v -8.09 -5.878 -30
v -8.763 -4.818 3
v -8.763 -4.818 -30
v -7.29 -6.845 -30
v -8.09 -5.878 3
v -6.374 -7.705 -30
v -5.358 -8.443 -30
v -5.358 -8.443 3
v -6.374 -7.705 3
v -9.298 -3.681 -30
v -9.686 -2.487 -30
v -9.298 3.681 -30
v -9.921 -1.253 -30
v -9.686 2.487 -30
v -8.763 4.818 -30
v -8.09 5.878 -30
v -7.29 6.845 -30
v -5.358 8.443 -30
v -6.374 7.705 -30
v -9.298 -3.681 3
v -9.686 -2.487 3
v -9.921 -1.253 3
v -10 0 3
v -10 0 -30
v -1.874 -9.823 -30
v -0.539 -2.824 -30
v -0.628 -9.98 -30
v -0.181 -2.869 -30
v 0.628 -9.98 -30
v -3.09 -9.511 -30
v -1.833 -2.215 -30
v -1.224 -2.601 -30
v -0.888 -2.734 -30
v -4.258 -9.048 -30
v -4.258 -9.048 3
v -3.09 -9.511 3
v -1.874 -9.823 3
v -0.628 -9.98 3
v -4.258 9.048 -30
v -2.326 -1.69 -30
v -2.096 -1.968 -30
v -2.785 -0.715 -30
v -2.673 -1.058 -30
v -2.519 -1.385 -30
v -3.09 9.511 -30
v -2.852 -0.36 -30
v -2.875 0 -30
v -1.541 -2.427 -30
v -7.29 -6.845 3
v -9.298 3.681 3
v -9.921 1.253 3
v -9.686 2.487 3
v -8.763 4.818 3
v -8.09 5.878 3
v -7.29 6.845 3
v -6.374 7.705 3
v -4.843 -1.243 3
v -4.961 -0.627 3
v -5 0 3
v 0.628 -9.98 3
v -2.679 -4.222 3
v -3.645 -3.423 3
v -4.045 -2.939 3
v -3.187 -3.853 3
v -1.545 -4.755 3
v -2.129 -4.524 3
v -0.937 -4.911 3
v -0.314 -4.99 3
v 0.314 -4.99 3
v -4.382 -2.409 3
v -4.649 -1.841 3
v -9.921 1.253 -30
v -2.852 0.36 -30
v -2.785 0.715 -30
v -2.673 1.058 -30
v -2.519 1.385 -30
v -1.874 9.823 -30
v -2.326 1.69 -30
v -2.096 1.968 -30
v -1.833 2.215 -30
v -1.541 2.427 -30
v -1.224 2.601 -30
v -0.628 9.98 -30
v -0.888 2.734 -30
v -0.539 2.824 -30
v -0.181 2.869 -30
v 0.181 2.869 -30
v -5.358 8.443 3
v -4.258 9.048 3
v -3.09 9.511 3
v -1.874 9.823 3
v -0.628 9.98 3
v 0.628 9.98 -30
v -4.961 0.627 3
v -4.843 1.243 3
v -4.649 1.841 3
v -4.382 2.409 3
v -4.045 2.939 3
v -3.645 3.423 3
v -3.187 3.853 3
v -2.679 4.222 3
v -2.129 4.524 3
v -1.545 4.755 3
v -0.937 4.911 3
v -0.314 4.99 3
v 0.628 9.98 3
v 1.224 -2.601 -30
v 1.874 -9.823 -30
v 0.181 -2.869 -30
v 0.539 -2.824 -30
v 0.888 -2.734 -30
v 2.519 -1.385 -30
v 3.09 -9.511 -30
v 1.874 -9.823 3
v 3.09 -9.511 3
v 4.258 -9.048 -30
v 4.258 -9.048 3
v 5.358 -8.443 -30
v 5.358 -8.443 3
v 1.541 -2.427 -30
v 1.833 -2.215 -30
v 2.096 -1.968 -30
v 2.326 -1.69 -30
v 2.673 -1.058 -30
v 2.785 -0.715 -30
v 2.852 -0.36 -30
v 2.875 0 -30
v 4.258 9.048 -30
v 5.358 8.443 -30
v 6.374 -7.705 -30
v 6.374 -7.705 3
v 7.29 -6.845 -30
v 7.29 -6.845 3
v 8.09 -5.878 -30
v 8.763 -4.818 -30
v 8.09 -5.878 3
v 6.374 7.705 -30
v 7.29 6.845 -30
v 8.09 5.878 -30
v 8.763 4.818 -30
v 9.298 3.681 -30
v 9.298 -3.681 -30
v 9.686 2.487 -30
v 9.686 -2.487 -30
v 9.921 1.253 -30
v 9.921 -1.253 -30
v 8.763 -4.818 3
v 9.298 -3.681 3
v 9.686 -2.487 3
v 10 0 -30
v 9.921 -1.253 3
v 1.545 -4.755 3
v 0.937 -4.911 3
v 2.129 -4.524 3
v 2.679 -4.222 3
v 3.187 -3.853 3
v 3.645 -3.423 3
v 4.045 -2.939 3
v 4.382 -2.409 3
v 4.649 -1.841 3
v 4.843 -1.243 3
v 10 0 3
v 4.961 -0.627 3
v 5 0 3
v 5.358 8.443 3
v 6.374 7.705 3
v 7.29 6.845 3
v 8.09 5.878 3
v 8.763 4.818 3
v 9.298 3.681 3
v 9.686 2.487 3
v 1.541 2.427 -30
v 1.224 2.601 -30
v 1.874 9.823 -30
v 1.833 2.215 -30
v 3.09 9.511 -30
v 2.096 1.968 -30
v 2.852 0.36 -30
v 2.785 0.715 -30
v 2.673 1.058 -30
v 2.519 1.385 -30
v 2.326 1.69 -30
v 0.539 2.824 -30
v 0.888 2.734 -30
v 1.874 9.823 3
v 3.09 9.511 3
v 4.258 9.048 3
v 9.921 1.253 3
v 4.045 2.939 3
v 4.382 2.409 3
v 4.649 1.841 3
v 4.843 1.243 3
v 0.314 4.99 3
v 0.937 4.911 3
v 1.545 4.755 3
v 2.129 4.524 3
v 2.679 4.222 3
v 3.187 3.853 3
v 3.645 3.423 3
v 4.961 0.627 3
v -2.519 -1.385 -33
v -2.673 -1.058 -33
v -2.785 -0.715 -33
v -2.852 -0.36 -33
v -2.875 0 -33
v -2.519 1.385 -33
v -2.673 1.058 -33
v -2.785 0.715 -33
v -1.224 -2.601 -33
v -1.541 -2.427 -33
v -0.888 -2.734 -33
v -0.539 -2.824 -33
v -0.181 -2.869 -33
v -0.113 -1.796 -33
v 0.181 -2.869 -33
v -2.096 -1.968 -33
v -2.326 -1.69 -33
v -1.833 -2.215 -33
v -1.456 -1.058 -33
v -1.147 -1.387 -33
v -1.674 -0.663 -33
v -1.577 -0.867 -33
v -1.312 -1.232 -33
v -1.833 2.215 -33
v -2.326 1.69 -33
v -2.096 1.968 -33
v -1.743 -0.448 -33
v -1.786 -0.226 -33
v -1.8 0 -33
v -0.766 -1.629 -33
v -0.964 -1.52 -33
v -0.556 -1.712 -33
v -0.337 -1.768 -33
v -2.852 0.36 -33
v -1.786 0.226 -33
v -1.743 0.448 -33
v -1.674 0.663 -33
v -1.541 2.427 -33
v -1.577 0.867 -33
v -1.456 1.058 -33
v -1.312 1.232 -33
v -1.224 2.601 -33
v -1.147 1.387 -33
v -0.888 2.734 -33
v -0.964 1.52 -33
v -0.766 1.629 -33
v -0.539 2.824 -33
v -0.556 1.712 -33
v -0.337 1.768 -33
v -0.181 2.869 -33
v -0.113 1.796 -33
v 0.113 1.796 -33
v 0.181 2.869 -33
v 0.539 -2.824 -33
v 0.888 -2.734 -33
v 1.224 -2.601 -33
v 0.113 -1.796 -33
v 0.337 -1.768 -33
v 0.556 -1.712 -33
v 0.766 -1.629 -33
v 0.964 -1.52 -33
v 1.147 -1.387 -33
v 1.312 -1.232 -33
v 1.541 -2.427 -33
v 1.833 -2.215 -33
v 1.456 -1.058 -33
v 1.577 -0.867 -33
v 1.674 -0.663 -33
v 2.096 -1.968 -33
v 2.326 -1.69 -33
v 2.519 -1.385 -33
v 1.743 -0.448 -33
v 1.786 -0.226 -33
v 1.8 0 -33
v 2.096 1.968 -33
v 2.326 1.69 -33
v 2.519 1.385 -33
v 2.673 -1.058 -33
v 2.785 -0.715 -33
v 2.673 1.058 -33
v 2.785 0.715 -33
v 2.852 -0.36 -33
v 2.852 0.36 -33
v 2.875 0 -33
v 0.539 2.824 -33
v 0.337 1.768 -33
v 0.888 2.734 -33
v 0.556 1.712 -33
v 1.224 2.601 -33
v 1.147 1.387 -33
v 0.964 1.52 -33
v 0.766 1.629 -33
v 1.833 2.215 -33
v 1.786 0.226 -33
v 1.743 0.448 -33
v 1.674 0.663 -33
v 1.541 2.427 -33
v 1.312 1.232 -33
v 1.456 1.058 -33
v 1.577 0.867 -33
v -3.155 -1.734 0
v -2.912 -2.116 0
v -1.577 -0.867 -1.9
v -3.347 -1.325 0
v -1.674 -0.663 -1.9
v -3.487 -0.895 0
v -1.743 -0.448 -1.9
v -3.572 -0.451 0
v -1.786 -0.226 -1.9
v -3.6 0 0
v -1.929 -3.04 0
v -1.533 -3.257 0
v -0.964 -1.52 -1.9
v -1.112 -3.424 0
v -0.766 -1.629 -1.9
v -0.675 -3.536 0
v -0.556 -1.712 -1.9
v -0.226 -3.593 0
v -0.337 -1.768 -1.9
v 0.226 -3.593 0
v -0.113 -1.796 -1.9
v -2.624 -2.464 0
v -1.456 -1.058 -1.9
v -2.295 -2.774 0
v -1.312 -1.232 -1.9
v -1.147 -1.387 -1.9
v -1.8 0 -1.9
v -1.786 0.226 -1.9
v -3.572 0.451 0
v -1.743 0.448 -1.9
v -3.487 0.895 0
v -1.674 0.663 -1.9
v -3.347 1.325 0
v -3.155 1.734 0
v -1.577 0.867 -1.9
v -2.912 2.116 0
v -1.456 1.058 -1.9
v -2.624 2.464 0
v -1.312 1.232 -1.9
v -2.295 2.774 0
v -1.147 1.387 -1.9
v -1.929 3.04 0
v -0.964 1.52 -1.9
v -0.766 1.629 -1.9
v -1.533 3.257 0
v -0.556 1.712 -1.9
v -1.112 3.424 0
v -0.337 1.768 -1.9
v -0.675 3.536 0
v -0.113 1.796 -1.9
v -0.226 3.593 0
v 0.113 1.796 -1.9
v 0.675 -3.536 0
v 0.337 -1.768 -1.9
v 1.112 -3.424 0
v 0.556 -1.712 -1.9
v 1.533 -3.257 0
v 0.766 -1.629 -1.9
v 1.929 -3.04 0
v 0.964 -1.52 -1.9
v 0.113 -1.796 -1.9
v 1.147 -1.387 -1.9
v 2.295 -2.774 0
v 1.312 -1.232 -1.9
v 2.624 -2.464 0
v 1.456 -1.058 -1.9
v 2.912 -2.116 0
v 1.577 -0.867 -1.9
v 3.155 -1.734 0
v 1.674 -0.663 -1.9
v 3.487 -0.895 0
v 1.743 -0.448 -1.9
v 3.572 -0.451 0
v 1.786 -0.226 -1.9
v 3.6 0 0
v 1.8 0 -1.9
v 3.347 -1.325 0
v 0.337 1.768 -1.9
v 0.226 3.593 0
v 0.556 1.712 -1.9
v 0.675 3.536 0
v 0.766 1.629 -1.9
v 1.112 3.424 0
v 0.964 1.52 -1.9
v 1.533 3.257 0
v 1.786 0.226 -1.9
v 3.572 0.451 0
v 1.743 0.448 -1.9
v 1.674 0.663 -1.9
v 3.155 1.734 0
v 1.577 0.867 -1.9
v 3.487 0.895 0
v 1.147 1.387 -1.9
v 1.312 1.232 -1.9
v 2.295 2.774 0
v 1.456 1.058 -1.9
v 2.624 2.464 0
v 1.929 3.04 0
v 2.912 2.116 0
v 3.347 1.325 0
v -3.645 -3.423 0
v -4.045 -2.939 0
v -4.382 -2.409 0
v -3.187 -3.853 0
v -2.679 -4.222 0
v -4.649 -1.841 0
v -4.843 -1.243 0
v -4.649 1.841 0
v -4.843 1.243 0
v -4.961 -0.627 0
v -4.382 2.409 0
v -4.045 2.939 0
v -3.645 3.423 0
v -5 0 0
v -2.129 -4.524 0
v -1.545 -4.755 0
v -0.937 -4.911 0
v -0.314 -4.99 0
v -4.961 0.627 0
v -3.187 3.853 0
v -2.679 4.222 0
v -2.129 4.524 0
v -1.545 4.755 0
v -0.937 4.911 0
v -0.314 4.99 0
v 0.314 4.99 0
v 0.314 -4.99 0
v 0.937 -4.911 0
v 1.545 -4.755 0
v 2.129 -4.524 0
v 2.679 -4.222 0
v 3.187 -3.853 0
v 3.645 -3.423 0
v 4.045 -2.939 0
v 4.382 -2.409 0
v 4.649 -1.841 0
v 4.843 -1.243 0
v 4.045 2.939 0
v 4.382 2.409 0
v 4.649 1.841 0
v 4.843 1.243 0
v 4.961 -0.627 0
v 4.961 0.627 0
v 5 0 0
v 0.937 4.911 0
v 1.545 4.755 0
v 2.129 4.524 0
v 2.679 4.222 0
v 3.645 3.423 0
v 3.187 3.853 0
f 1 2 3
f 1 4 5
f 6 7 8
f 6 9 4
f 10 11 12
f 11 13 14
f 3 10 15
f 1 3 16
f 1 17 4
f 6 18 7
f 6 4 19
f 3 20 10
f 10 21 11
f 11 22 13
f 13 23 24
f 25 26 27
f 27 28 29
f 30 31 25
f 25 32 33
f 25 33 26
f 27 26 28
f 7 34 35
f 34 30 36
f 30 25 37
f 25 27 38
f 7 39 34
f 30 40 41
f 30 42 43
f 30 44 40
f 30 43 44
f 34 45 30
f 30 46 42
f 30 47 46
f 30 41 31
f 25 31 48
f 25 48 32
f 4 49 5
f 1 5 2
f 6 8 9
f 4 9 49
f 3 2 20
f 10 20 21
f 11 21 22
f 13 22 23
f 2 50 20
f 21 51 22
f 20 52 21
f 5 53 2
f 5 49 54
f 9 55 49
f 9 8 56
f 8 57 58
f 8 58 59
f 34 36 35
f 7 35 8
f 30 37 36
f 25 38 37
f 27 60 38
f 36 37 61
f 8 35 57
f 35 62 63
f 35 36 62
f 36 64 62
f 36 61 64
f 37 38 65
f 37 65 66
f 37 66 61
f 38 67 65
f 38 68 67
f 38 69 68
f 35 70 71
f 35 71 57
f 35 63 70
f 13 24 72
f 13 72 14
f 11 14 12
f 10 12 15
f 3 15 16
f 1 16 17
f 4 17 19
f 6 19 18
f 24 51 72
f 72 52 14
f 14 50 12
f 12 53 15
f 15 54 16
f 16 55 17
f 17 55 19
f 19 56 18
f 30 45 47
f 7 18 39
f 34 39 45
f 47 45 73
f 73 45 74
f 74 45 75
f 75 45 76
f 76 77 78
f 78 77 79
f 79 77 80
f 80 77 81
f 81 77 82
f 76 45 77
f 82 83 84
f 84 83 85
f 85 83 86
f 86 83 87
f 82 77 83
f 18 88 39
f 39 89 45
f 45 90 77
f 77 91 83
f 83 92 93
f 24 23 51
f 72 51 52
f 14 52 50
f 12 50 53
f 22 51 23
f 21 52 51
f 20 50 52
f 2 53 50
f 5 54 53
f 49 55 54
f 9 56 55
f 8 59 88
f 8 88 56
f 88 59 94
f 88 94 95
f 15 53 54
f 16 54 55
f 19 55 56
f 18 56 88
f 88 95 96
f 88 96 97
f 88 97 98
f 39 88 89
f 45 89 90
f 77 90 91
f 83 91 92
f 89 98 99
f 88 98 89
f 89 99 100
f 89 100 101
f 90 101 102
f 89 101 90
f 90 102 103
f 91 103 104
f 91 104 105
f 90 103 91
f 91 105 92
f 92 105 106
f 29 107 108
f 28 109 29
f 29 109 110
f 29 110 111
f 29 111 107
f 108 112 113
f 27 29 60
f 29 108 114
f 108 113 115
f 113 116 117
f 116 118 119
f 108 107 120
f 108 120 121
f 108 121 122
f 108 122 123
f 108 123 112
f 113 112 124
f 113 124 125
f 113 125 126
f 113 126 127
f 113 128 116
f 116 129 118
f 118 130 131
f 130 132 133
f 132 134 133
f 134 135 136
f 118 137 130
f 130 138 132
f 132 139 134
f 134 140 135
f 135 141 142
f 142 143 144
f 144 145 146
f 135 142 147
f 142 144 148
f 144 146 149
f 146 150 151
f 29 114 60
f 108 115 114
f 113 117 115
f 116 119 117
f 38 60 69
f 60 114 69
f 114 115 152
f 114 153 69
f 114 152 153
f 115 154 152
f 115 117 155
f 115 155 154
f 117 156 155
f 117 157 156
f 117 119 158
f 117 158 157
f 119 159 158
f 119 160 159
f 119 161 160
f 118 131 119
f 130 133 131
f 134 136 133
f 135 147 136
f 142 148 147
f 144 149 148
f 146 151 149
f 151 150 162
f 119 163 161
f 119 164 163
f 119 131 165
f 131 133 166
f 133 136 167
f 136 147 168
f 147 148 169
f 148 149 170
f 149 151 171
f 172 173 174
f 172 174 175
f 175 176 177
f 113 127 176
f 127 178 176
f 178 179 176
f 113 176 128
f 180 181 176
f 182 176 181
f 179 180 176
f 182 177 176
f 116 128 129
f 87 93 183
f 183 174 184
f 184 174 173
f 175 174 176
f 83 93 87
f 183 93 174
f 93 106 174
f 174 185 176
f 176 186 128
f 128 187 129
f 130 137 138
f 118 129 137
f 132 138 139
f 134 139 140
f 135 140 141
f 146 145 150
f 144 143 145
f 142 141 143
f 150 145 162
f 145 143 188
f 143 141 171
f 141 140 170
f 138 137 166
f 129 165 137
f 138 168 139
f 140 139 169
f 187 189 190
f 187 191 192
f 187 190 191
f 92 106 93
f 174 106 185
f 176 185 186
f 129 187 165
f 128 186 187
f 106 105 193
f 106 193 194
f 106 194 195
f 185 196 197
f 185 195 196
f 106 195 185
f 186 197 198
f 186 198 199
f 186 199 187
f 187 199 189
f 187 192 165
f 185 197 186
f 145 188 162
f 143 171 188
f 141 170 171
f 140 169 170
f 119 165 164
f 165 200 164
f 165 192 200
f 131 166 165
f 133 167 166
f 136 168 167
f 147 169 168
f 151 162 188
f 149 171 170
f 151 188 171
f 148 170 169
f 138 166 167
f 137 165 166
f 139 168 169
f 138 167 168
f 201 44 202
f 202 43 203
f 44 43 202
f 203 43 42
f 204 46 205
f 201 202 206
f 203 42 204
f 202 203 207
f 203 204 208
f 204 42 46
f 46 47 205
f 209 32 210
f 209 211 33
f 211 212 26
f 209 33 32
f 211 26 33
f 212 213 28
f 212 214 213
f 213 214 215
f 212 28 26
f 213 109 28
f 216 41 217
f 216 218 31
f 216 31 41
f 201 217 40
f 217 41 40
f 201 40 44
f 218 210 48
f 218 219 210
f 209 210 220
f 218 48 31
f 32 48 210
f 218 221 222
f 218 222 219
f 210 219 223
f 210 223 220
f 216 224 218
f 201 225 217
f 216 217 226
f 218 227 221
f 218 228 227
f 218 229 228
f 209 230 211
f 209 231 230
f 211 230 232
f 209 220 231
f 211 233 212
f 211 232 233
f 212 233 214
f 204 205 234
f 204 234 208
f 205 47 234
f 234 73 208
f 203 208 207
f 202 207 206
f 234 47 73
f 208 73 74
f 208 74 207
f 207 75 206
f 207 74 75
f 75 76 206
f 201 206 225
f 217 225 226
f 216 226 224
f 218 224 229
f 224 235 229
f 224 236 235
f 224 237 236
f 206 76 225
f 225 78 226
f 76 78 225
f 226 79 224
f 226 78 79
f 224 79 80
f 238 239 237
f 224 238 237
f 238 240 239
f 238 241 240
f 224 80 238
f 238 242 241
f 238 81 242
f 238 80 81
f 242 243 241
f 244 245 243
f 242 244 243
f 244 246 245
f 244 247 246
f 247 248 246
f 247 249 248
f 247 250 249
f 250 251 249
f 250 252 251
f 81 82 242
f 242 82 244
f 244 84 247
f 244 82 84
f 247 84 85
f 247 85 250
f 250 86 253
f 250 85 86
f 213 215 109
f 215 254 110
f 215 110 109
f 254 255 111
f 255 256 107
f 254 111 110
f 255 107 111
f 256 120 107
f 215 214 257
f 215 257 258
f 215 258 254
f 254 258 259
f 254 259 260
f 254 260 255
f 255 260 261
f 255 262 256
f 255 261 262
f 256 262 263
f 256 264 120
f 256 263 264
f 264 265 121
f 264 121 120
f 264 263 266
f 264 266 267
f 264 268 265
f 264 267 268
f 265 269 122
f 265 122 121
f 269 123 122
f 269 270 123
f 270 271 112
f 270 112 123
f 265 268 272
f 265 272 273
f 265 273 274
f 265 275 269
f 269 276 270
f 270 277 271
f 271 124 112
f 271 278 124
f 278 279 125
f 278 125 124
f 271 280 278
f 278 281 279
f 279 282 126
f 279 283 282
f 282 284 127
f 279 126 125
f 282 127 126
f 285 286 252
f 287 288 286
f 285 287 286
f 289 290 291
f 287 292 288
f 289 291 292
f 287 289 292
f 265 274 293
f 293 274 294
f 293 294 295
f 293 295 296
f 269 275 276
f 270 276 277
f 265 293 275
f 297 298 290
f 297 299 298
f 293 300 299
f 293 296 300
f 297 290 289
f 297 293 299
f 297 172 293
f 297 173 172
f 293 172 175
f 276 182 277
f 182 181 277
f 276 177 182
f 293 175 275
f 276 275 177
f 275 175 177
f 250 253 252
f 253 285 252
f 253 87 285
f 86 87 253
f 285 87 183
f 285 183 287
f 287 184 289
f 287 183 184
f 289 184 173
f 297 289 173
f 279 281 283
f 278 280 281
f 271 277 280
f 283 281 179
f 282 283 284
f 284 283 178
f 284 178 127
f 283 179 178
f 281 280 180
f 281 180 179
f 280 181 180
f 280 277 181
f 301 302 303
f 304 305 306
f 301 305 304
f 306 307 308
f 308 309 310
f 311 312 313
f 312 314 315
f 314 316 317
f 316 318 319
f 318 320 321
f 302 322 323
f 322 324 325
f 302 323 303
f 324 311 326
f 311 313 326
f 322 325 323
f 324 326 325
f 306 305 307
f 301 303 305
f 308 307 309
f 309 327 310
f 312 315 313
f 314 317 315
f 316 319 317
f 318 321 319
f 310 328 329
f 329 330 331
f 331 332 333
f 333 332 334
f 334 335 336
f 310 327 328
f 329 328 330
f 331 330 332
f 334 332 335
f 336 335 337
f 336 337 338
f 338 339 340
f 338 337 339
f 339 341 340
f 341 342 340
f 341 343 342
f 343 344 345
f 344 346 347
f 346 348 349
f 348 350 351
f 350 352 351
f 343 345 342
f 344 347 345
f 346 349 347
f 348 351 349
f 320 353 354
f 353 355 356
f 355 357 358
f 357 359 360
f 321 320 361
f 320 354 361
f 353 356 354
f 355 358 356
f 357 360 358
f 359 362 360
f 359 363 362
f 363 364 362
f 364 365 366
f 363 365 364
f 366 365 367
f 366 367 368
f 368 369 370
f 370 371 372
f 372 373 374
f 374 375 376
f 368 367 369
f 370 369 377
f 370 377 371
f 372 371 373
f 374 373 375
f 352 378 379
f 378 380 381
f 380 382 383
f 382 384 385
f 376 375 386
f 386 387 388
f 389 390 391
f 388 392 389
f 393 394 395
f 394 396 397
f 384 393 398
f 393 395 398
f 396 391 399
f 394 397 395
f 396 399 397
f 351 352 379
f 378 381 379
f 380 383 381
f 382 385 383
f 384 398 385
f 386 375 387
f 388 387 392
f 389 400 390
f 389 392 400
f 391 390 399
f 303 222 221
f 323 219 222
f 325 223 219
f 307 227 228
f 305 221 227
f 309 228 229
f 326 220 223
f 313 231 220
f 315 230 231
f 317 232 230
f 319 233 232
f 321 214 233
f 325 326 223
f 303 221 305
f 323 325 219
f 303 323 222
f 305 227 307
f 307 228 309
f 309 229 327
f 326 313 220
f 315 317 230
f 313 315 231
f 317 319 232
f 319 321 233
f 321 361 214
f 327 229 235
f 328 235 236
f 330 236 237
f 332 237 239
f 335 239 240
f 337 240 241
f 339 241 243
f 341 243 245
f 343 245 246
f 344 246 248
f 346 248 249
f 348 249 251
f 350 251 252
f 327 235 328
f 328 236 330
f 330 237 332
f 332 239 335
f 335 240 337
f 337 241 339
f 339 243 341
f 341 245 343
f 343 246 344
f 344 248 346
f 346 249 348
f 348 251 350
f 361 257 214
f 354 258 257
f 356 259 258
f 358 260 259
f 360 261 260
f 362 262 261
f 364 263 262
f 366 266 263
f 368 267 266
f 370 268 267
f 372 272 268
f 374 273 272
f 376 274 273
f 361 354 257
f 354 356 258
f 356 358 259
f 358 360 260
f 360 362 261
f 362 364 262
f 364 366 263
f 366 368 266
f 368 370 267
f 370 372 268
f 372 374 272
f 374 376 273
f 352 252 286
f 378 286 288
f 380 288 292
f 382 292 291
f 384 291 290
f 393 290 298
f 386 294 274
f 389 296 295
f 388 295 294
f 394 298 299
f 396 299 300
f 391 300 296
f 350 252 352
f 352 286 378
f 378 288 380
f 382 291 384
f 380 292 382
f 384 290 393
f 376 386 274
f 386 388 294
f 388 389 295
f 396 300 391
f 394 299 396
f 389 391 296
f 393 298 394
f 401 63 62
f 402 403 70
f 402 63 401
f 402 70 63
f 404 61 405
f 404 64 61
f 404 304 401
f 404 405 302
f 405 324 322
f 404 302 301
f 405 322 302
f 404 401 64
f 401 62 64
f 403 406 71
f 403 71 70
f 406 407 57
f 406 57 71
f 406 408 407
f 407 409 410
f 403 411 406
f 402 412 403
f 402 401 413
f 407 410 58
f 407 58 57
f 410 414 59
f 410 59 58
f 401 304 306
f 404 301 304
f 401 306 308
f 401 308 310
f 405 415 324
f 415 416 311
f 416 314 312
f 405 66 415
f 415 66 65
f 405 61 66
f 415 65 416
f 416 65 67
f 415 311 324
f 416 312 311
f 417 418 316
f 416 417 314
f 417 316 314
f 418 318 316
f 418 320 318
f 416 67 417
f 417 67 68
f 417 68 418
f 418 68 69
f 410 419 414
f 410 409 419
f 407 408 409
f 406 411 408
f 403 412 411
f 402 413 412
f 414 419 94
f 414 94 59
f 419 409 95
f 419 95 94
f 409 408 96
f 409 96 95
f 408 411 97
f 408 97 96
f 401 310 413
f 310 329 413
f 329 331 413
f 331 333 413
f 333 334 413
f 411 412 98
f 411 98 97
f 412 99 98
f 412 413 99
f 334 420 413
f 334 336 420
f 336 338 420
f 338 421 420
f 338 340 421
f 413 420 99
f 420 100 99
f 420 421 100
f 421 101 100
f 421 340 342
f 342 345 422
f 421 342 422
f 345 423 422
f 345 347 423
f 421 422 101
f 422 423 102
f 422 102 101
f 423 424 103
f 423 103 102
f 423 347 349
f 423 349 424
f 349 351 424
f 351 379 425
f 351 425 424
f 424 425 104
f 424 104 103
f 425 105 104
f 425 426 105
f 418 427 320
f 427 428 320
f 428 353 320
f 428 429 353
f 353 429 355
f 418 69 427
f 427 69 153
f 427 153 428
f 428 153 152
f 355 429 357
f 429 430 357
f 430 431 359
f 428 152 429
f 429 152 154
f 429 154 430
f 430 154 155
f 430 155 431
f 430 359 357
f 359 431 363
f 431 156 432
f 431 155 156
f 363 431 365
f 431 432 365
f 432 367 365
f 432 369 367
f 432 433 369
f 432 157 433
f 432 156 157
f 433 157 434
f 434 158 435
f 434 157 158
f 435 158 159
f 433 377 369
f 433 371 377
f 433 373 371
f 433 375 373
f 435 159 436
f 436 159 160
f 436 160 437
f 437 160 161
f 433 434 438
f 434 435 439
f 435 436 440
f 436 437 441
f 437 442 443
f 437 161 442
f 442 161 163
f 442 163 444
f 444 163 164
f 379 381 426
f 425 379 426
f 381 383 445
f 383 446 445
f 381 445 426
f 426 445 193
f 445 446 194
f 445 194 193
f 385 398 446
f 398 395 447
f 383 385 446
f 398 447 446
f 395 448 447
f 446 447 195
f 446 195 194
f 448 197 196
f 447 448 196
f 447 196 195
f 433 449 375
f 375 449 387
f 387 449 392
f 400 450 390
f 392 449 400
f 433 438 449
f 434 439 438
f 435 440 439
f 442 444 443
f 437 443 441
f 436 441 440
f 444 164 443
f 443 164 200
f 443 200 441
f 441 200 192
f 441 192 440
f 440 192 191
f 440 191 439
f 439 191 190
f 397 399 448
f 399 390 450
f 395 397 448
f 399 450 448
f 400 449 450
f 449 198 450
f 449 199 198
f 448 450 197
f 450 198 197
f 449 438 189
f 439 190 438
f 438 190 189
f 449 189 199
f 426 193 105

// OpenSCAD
$fn = 50;

difference() {
	union() {
		translate(v = [0, 0, -30.0]) {
			cylinder(h = 33, r = 10.0);
		}
		#translate(v = [0, 0, -33.0]) {
			cylinder(h = 33, r = 2.875);
		}
	}
	union() {
		translate(v = [0, 0, 0]) {
			rotate(a = [0, 0, 0]) {
				difference() {
					union() {
						translate(v = [0, 0, -33.0]) {
							cylinder(h = 33, r = 1.5);
						}
						translate(v = [0, 0, -1.9]) {
							cylinder(h = 1.9, r1 = 1.8, r2 = 3.6);
						}
						translate(v = [0, 0, -33.0]) {
							cylinder(h = 33, r = 1.8);
						}
						translate(v = [0, 0, -33.0]) {
							cylinder(h = 33, r = 1.5);
						}
					}
					union();
				}
			}
		}
		#cylinder(h = 3, r = 5.0);
	}
}
